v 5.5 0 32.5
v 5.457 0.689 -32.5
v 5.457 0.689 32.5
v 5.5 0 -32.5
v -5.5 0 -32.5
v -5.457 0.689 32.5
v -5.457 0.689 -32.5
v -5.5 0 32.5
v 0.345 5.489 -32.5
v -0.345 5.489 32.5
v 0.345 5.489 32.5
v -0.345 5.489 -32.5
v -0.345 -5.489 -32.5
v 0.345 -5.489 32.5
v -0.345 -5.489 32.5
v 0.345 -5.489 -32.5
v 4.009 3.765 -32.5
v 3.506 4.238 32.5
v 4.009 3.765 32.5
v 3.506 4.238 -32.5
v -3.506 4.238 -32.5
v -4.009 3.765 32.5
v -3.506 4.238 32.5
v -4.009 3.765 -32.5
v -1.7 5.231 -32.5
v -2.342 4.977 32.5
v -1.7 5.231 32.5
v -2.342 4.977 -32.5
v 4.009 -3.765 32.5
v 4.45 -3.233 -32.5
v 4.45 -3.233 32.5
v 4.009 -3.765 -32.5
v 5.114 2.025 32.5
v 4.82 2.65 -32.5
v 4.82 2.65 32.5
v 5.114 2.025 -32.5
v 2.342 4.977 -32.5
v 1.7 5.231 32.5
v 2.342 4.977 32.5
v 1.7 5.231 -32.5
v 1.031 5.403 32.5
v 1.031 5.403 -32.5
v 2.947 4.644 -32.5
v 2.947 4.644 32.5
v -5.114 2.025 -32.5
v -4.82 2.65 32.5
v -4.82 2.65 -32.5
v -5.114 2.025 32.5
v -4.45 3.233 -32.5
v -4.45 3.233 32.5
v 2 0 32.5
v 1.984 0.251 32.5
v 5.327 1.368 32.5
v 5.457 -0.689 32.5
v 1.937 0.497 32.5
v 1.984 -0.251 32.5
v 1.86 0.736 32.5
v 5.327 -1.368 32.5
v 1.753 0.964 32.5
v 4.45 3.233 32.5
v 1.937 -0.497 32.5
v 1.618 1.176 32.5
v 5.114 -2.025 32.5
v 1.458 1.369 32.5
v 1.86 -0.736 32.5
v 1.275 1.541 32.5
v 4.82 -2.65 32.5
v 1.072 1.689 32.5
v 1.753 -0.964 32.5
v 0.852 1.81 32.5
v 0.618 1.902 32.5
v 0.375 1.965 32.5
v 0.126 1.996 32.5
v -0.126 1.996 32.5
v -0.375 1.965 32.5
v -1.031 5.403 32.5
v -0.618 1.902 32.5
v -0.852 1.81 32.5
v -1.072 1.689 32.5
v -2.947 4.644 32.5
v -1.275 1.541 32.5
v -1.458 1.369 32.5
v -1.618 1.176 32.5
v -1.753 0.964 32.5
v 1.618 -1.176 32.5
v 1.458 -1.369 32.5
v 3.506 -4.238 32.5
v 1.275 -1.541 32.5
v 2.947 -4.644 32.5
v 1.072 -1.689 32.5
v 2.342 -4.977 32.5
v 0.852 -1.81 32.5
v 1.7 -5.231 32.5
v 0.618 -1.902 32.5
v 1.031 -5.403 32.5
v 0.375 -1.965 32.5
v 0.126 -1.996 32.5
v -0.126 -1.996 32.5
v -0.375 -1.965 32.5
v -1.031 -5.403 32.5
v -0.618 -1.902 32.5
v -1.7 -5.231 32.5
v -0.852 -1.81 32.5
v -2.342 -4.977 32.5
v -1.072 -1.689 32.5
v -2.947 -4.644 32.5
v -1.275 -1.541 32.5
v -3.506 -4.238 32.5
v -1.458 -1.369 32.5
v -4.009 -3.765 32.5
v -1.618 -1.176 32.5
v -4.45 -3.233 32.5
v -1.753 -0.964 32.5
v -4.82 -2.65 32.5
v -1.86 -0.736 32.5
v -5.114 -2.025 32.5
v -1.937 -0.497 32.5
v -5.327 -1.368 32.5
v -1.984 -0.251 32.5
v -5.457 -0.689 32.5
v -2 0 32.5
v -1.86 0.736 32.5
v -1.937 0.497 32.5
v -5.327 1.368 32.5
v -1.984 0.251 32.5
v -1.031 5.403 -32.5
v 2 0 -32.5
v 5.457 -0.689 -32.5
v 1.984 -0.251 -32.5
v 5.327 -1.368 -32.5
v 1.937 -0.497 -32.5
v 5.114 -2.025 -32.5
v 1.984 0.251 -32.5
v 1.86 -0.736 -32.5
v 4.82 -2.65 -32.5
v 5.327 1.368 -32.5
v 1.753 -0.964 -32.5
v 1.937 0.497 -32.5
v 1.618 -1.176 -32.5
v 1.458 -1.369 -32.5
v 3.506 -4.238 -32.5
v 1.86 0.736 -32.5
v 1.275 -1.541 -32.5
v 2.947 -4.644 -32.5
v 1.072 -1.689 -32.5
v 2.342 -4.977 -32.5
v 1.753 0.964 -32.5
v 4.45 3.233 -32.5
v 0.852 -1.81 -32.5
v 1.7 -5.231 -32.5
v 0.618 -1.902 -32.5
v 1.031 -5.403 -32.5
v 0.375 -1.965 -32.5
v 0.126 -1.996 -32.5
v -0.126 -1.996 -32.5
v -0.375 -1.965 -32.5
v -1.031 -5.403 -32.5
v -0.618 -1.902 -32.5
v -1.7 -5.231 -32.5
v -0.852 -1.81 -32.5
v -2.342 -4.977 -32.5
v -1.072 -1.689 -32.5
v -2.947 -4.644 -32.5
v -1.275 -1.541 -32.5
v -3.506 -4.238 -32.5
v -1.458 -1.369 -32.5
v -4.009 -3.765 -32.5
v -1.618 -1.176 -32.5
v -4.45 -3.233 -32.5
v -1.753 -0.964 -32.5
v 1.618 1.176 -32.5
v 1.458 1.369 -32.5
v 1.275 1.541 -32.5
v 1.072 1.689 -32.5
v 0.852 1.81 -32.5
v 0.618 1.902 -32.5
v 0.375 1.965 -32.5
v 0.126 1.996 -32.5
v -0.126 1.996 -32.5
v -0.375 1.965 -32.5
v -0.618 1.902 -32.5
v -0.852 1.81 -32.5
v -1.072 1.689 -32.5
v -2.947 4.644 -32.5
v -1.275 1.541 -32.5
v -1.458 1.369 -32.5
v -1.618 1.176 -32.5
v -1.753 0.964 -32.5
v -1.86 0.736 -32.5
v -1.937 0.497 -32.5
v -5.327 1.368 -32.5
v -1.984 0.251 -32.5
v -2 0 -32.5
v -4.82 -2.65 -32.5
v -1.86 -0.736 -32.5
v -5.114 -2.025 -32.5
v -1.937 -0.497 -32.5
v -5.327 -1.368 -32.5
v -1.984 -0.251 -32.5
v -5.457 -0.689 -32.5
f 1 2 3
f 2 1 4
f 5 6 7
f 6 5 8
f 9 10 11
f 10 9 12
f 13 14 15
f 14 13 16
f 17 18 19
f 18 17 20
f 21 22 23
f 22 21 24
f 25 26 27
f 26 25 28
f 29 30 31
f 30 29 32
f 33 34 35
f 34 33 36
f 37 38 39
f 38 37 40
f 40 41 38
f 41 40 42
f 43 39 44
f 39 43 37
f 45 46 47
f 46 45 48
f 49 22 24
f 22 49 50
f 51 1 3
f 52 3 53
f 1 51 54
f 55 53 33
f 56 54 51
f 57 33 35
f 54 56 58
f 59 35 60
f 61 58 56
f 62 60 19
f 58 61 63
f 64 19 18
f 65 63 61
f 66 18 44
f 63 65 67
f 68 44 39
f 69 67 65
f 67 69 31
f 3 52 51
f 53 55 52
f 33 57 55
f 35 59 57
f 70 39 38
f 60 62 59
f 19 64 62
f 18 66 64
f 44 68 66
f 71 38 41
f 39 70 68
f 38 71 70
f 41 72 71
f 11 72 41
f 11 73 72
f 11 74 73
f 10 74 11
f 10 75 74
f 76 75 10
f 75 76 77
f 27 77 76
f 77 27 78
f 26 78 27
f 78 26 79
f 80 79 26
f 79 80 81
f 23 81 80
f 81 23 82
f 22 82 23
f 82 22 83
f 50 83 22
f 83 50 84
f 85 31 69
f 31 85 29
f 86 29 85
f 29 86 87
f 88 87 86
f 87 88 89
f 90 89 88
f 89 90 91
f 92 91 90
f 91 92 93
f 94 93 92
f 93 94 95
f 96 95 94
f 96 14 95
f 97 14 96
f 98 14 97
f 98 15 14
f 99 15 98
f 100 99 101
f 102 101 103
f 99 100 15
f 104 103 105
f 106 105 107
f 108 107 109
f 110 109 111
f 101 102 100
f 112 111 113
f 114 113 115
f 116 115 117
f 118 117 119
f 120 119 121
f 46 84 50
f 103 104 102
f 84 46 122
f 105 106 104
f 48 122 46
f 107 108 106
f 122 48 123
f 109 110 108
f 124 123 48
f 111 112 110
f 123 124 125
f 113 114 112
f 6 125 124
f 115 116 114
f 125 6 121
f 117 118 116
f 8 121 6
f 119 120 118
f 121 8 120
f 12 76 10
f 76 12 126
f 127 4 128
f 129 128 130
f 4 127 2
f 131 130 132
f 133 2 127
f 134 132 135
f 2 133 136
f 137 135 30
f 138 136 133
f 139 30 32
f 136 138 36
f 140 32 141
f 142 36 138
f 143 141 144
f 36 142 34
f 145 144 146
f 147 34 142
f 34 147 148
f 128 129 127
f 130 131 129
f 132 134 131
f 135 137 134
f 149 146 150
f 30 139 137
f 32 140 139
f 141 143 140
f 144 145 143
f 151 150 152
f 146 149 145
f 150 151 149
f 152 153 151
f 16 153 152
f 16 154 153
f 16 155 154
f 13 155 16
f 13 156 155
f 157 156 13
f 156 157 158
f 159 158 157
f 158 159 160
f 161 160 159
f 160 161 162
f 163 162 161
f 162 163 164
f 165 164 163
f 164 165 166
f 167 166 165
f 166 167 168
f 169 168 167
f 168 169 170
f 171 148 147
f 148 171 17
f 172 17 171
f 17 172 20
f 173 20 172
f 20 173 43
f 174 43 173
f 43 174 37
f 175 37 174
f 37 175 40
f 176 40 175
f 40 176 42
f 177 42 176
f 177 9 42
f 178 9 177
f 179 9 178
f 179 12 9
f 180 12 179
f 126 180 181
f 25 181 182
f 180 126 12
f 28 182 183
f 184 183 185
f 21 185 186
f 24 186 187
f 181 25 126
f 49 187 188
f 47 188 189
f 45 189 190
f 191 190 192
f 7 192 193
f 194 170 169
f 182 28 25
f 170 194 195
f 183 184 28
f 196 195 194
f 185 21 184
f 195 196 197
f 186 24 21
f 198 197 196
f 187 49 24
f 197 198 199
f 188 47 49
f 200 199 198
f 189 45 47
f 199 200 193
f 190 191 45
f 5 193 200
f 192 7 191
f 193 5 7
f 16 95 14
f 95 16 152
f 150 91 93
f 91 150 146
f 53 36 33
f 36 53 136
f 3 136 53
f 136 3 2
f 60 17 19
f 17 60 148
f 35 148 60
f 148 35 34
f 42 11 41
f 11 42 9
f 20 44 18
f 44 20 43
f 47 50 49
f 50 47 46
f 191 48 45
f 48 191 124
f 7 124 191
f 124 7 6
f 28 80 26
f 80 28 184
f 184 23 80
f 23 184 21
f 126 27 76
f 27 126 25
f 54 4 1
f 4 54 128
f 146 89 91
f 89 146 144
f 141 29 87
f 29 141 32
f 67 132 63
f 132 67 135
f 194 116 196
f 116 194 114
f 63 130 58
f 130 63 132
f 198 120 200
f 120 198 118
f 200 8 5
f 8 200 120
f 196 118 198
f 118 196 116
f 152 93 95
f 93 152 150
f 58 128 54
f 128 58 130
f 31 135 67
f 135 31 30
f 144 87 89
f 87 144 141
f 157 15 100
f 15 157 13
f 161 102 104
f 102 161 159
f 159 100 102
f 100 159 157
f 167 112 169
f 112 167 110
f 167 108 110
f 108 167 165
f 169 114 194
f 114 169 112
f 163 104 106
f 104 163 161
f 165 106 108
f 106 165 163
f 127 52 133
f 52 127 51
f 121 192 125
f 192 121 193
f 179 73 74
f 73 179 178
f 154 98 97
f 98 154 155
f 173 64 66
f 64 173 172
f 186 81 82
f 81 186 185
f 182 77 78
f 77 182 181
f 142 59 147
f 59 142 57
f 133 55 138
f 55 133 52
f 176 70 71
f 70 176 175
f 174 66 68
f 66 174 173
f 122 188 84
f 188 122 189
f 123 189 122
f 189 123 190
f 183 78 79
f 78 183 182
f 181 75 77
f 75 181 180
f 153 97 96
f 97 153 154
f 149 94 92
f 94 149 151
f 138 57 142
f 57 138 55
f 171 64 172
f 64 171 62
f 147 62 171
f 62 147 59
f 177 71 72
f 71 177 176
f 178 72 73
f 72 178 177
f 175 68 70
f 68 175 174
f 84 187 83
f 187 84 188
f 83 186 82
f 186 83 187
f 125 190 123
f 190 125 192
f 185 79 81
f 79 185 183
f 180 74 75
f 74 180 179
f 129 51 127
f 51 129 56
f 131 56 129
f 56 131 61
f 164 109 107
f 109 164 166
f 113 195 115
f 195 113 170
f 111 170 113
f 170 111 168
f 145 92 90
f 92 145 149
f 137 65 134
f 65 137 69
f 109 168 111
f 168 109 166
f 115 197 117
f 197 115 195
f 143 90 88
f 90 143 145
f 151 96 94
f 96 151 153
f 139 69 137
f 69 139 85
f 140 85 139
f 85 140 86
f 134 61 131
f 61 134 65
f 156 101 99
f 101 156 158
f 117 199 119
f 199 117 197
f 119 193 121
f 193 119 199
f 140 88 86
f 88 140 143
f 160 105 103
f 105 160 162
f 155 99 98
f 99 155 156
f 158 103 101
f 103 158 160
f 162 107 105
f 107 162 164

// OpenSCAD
$fn = 50;


difference() {
	union() {
		translate(v = [0, 0, -32.5000000000]) {
			cylinder(h = 65, r = 5.5000000000);
		}
	}
	union() {
		translate(v = [0, 0, -100.0000000000]) {
			cylinder(h = 200, r = 2);
		}
	}
}
